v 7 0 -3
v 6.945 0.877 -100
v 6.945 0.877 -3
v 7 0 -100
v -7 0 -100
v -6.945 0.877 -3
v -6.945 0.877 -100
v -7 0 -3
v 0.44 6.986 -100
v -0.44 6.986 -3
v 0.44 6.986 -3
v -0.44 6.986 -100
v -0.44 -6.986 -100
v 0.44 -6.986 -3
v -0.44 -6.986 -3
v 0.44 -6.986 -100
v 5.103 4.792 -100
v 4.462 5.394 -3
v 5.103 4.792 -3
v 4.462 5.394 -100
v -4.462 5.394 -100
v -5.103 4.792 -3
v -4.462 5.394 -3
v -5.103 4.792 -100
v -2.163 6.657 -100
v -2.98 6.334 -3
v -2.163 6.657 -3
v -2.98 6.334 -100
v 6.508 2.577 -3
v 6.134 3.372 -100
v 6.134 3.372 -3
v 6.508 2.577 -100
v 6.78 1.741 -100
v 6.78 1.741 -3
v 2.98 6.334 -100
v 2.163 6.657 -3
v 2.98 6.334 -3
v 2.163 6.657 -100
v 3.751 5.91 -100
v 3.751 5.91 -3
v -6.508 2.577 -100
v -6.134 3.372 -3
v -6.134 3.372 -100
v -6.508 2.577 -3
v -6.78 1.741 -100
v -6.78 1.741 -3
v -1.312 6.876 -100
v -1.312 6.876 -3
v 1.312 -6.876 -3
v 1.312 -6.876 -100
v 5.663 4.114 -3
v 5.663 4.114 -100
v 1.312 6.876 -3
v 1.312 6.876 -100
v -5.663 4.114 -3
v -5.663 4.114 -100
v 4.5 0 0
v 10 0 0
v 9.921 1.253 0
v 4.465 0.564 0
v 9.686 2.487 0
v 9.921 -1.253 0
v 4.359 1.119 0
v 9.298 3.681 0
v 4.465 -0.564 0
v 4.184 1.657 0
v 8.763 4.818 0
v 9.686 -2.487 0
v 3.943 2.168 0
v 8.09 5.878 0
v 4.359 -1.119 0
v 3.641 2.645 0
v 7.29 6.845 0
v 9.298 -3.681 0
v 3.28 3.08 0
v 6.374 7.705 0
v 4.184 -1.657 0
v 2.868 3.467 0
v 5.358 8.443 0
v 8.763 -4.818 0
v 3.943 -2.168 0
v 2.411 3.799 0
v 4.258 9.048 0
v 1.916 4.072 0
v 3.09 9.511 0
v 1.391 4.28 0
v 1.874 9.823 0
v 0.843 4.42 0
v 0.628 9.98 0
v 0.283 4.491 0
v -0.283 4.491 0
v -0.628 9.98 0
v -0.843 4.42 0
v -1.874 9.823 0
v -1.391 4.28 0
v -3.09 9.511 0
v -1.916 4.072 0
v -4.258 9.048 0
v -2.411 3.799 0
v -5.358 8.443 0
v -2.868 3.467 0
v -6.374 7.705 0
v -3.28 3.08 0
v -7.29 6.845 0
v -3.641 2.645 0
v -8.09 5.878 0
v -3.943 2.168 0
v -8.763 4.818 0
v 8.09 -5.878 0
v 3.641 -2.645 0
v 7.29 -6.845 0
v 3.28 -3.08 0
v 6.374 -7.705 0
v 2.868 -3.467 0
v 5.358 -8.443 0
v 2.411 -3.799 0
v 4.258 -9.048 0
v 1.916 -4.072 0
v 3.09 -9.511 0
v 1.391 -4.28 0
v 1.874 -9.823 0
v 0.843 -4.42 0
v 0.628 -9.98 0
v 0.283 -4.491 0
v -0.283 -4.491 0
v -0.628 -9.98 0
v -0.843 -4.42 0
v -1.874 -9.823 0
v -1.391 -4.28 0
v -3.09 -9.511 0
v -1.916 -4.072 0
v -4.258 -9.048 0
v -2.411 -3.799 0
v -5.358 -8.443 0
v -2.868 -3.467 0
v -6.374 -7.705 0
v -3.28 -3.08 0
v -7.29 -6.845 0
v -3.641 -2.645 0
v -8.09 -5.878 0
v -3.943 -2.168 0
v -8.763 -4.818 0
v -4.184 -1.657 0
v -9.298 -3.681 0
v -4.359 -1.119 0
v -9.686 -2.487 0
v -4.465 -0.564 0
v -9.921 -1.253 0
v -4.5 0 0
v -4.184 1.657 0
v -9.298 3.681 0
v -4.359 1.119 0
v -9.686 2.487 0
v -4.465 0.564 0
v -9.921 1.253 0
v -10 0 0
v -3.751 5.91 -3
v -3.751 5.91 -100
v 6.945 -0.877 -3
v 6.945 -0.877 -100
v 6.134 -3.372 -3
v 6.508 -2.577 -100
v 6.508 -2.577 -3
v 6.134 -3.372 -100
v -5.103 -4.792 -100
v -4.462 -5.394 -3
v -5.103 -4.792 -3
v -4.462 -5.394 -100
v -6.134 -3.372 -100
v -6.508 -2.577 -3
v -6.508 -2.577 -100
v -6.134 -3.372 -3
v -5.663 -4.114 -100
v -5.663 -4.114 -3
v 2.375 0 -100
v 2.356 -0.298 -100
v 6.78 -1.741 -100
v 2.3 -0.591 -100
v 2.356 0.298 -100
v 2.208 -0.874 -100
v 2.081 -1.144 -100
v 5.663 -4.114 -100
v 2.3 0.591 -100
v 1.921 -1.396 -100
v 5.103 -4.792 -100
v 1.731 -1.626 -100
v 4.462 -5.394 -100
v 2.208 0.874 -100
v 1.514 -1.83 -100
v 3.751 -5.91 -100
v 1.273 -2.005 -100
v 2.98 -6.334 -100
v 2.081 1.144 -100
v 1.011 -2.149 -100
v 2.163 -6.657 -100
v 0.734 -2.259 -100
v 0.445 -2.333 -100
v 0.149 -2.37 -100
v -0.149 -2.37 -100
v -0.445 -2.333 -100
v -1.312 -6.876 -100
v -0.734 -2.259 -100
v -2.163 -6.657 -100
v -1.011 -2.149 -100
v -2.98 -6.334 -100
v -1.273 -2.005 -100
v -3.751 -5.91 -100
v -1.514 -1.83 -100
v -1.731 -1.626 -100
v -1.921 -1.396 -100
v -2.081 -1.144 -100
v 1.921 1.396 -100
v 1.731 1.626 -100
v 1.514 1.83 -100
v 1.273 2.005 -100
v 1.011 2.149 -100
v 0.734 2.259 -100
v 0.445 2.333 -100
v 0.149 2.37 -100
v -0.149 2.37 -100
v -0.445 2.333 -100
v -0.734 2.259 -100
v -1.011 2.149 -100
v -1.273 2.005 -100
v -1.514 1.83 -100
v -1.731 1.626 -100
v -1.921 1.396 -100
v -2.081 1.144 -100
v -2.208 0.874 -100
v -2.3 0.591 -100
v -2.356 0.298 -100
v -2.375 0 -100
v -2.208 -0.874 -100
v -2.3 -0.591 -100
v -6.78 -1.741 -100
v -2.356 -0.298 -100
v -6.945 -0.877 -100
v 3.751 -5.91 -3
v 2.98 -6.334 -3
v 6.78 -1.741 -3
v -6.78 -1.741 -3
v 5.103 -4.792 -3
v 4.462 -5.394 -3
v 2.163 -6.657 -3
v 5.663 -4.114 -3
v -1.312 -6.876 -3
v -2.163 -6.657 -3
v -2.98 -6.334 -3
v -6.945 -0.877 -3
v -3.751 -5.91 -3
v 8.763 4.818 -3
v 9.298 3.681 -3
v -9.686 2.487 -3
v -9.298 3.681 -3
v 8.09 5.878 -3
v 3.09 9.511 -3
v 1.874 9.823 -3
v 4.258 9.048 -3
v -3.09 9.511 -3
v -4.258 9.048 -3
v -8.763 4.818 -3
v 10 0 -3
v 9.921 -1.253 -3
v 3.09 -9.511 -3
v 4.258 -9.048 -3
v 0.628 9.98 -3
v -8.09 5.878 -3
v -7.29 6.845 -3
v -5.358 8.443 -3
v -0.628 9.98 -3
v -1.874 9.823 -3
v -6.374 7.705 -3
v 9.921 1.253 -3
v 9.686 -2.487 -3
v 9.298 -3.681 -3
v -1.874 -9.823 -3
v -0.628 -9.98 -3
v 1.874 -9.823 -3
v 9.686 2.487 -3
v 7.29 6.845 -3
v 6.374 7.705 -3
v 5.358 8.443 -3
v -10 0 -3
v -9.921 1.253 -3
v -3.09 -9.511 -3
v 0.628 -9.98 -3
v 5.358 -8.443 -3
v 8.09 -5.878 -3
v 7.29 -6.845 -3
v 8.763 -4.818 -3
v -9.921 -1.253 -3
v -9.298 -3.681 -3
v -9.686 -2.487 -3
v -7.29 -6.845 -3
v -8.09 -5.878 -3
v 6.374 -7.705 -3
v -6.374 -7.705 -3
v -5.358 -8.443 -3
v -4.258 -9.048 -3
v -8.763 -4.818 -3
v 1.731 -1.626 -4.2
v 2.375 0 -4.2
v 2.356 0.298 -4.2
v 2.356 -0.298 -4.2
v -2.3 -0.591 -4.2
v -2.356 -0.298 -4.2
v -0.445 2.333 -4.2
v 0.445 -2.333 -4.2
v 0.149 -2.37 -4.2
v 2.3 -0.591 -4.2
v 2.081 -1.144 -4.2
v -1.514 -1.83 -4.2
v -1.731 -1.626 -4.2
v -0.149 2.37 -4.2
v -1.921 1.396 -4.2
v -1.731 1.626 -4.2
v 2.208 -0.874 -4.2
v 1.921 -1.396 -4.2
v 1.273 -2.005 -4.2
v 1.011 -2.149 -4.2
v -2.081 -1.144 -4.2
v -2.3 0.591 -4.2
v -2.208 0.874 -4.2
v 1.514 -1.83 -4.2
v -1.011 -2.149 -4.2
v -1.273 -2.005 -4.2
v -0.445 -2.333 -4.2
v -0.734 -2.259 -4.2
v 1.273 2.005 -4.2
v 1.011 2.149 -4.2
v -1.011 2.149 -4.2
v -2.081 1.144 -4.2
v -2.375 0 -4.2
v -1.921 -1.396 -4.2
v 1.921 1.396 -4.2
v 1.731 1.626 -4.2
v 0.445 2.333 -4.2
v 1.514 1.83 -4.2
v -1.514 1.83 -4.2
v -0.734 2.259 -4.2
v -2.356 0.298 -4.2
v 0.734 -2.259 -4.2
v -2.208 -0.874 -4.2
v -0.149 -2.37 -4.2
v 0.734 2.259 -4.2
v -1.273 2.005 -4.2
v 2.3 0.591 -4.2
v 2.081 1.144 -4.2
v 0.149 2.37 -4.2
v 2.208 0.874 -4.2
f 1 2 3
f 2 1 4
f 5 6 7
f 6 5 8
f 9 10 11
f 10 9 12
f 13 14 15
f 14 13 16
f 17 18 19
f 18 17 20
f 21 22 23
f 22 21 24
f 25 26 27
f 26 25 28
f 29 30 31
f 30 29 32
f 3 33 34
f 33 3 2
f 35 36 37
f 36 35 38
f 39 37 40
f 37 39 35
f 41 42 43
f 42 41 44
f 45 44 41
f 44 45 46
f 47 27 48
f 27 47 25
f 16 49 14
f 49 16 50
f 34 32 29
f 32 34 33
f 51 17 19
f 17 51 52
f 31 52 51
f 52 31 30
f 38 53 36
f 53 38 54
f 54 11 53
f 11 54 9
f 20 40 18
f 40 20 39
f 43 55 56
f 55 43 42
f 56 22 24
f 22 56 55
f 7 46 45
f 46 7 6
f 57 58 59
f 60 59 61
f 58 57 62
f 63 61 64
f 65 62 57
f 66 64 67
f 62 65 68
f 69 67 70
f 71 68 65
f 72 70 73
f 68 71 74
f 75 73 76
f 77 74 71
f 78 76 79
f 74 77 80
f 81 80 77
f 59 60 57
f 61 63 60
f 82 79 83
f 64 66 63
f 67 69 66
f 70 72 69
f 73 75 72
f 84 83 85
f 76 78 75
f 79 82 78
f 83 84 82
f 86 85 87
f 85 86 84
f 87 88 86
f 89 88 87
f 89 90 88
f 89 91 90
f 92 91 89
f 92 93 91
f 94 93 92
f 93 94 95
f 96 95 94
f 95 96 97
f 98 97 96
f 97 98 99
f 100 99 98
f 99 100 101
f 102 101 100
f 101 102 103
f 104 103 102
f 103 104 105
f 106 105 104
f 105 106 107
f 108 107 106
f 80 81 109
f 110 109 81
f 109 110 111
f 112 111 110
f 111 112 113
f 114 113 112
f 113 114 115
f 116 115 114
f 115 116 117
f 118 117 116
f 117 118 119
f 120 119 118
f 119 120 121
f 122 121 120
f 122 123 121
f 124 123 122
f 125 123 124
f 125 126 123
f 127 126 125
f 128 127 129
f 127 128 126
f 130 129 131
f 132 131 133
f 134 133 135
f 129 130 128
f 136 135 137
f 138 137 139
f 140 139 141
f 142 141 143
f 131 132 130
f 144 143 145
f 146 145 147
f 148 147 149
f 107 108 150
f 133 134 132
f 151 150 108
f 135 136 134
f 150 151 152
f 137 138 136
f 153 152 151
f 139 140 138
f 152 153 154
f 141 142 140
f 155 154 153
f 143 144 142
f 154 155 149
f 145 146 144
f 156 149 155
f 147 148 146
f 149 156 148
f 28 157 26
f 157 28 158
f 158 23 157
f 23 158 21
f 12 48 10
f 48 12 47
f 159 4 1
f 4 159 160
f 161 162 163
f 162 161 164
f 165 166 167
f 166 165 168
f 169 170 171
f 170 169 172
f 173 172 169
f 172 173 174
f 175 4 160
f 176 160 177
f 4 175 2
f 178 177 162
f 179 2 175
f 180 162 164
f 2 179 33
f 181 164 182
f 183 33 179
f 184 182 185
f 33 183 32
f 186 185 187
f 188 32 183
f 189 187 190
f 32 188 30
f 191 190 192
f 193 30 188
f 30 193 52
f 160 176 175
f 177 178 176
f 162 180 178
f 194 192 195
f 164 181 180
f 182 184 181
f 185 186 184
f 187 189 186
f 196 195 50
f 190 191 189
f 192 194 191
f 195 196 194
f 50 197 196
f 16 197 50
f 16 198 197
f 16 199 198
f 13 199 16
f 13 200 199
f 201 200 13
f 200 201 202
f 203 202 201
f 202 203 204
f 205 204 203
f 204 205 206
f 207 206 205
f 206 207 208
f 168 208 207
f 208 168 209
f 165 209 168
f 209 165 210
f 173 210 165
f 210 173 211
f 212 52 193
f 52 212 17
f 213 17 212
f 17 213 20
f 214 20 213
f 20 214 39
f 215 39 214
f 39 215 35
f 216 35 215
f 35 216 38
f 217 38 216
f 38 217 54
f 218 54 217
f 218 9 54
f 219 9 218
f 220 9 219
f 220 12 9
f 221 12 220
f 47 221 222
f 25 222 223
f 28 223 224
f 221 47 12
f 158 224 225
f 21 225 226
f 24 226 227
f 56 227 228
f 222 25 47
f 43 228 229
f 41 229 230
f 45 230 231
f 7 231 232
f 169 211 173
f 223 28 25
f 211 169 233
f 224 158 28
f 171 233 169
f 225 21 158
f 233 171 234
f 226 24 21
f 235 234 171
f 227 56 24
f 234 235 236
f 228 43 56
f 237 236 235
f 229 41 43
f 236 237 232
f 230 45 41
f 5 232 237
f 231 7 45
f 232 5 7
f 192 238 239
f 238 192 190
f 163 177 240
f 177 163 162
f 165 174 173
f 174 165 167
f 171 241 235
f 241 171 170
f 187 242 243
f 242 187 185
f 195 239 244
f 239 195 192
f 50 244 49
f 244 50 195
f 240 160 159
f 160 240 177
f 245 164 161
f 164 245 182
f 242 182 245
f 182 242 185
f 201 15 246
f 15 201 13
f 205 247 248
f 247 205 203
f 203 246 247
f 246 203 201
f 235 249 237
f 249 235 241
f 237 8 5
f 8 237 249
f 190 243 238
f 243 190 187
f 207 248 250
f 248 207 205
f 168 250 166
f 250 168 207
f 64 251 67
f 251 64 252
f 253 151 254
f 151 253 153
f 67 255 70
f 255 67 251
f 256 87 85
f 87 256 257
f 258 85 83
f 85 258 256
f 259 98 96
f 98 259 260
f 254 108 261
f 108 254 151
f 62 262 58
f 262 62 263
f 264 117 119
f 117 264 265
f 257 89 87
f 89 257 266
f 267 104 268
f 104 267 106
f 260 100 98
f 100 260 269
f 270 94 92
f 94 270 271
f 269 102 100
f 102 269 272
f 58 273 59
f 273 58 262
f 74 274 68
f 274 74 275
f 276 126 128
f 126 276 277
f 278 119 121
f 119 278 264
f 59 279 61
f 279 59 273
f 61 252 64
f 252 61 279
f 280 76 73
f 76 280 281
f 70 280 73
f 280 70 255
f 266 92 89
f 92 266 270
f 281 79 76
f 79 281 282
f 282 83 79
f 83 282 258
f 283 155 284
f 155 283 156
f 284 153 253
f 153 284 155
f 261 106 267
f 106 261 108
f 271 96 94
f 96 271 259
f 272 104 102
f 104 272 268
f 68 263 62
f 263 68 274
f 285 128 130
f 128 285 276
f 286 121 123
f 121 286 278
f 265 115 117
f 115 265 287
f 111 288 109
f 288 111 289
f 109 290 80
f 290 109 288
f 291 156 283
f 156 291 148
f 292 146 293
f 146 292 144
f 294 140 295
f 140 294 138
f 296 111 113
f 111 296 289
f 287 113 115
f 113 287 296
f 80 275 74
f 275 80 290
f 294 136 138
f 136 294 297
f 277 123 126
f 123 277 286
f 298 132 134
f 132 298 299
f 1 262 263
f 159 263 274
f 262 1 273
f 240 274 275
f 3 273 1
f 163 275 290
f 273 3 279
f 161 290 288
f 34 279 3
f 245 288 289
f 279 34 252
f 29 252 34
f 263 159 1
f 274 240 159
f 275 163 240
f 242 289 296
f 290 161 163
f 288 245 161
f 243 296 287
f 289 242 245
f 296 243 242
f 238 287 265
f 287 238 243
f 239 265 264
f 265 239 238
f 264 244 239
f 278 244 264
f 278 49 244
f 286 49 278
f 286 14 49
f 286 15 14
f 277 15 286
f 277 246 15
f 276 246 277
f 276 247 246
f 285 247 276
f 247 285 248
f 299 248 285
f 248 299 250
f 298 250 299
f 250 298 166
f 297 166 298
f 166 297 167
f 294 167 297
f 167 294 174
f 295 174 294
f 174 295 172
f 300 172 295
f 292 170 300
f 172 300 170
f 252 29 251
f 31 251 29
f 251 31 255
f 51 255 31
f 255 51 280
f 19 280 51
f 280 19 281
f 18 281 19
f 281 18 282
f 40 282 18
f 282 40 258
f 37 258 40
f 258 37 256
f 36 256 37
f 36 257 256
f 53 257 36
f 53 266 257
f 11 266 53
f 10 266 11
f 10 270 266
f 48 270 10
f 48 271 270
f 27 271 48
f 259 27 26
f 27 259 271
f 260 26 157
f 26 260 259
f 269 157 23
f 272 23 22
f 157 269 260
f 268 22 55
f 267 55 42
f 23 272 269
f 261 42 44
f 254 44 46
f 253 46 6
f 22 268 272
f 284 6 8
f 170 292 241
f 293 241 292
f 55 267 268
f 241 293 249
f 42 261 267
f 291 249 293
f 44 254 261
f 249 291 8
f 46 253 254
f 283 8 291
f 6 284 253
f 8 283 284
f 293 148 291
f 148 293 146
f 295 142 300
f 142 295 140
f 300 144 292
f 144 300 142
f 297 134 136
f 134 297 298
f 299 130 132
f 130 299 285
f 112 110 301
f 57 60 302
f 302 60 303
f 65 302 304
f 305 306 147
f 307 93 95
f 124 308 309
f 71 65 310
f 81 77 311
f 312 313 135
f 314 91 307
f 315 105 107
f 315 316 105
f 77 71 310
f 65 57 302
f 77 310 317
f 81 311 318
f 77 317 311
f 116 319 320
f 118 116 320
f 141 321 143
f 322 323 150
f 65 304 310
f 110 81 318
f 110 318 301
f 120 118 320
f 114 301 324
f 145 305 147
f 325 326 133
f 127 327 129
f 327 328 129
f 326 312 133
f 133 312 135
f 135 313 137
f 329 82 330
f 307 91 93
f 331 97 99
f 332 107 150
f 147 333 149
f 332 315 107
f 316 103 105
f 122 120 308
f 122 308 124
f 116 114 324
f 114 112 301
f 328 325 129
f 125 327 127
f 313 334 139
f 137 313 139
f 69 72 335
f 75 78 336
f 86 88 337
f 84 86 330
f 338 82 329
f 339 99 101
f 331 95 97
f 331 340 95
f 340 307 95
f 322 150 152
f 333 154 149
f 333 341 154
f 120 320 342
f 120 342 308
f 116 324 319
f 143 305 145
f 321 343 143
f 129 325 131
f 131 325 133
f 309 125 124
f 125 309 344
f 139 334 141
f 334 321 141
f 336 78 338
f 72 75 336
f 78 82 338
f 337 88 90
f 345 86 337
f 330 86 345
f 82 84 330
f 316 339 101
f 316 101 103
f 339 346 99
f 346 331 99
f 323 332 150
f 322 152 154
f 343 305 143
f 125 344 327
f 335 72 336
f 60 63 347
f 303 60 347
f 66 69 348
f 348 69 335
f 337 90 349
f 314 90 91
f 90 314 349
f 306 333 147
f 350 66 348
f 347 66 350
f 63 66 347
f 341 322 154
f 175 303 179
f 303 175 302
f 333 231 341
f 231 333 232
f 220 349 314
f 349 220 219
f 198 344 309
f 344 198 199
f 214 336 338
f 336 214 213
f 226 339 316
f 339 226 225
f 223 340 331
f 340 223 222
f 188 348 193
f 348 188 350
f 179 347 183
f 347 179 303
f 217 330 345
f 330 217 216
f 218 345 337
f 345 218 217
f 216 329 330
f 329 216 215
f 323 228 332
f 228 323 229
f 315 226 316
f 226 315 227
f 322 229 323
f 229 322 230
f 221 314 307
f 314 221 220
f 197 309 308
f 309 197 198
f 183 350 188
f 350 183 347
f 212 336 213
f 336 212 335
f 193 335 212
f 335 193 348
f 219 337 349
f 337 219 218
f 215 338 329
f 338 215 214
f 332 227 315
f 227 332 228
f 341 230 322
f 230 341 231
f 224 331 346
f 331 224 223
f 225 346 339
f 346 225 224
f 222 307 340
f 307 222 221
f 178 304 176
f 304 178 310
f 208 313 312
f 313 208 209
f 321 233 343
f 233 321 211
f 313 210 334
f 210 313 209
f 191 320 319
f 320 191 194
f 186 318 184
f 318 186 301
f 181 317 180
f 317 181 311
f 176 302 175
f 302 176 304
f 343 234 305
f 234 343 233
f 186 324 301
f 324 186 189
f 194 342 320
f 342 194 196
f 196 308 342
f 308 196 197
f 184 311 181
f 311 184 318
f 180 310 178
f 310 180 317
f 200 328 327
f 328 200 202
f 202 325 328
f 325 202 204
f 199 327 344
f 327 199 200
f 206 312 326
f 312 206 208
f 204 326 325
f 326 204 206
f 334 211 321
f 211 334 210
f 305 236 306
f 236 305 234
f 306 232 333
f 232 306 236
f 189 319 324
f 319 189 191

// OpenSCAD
$fn = 50;


difference() {
	union() {
		translate(v = [0, 0, -100.0000000000]) {
			cylinder(h = 100, r = 7.0000000000);
		}
		translate(v = [0, 0, -3.0000000000]) {
			cylinder(h = 3, r = 10.0000000000);
		}
	}
	union() {
		translate(v = [0, 0, 0]) {
			rotate(a = [0, 0, 0]) {
				difference() {
					union() {
						#translate(v = [0, 0, -100.0000000000]) {
							cylinder(h = 100, r = 2.2500000000);
						}
						#translate(v = [0, 0, -4.2000000000]) {
							cylinder(h = 4.2000000000, r1 = 2.3750000000, r2 = 4.5000000000);
						}
						#translate(v = [0, 0, -100.0000000000]) {
							cylinder(h = 100, r = 2.3750000000);
						}
						#translate(v = [0, 0, -100.0000000000]) {
							cylinder(h = 100, r = 2.2500000000);
						}
					}
					union();
				}
			}
		}
	}
}
